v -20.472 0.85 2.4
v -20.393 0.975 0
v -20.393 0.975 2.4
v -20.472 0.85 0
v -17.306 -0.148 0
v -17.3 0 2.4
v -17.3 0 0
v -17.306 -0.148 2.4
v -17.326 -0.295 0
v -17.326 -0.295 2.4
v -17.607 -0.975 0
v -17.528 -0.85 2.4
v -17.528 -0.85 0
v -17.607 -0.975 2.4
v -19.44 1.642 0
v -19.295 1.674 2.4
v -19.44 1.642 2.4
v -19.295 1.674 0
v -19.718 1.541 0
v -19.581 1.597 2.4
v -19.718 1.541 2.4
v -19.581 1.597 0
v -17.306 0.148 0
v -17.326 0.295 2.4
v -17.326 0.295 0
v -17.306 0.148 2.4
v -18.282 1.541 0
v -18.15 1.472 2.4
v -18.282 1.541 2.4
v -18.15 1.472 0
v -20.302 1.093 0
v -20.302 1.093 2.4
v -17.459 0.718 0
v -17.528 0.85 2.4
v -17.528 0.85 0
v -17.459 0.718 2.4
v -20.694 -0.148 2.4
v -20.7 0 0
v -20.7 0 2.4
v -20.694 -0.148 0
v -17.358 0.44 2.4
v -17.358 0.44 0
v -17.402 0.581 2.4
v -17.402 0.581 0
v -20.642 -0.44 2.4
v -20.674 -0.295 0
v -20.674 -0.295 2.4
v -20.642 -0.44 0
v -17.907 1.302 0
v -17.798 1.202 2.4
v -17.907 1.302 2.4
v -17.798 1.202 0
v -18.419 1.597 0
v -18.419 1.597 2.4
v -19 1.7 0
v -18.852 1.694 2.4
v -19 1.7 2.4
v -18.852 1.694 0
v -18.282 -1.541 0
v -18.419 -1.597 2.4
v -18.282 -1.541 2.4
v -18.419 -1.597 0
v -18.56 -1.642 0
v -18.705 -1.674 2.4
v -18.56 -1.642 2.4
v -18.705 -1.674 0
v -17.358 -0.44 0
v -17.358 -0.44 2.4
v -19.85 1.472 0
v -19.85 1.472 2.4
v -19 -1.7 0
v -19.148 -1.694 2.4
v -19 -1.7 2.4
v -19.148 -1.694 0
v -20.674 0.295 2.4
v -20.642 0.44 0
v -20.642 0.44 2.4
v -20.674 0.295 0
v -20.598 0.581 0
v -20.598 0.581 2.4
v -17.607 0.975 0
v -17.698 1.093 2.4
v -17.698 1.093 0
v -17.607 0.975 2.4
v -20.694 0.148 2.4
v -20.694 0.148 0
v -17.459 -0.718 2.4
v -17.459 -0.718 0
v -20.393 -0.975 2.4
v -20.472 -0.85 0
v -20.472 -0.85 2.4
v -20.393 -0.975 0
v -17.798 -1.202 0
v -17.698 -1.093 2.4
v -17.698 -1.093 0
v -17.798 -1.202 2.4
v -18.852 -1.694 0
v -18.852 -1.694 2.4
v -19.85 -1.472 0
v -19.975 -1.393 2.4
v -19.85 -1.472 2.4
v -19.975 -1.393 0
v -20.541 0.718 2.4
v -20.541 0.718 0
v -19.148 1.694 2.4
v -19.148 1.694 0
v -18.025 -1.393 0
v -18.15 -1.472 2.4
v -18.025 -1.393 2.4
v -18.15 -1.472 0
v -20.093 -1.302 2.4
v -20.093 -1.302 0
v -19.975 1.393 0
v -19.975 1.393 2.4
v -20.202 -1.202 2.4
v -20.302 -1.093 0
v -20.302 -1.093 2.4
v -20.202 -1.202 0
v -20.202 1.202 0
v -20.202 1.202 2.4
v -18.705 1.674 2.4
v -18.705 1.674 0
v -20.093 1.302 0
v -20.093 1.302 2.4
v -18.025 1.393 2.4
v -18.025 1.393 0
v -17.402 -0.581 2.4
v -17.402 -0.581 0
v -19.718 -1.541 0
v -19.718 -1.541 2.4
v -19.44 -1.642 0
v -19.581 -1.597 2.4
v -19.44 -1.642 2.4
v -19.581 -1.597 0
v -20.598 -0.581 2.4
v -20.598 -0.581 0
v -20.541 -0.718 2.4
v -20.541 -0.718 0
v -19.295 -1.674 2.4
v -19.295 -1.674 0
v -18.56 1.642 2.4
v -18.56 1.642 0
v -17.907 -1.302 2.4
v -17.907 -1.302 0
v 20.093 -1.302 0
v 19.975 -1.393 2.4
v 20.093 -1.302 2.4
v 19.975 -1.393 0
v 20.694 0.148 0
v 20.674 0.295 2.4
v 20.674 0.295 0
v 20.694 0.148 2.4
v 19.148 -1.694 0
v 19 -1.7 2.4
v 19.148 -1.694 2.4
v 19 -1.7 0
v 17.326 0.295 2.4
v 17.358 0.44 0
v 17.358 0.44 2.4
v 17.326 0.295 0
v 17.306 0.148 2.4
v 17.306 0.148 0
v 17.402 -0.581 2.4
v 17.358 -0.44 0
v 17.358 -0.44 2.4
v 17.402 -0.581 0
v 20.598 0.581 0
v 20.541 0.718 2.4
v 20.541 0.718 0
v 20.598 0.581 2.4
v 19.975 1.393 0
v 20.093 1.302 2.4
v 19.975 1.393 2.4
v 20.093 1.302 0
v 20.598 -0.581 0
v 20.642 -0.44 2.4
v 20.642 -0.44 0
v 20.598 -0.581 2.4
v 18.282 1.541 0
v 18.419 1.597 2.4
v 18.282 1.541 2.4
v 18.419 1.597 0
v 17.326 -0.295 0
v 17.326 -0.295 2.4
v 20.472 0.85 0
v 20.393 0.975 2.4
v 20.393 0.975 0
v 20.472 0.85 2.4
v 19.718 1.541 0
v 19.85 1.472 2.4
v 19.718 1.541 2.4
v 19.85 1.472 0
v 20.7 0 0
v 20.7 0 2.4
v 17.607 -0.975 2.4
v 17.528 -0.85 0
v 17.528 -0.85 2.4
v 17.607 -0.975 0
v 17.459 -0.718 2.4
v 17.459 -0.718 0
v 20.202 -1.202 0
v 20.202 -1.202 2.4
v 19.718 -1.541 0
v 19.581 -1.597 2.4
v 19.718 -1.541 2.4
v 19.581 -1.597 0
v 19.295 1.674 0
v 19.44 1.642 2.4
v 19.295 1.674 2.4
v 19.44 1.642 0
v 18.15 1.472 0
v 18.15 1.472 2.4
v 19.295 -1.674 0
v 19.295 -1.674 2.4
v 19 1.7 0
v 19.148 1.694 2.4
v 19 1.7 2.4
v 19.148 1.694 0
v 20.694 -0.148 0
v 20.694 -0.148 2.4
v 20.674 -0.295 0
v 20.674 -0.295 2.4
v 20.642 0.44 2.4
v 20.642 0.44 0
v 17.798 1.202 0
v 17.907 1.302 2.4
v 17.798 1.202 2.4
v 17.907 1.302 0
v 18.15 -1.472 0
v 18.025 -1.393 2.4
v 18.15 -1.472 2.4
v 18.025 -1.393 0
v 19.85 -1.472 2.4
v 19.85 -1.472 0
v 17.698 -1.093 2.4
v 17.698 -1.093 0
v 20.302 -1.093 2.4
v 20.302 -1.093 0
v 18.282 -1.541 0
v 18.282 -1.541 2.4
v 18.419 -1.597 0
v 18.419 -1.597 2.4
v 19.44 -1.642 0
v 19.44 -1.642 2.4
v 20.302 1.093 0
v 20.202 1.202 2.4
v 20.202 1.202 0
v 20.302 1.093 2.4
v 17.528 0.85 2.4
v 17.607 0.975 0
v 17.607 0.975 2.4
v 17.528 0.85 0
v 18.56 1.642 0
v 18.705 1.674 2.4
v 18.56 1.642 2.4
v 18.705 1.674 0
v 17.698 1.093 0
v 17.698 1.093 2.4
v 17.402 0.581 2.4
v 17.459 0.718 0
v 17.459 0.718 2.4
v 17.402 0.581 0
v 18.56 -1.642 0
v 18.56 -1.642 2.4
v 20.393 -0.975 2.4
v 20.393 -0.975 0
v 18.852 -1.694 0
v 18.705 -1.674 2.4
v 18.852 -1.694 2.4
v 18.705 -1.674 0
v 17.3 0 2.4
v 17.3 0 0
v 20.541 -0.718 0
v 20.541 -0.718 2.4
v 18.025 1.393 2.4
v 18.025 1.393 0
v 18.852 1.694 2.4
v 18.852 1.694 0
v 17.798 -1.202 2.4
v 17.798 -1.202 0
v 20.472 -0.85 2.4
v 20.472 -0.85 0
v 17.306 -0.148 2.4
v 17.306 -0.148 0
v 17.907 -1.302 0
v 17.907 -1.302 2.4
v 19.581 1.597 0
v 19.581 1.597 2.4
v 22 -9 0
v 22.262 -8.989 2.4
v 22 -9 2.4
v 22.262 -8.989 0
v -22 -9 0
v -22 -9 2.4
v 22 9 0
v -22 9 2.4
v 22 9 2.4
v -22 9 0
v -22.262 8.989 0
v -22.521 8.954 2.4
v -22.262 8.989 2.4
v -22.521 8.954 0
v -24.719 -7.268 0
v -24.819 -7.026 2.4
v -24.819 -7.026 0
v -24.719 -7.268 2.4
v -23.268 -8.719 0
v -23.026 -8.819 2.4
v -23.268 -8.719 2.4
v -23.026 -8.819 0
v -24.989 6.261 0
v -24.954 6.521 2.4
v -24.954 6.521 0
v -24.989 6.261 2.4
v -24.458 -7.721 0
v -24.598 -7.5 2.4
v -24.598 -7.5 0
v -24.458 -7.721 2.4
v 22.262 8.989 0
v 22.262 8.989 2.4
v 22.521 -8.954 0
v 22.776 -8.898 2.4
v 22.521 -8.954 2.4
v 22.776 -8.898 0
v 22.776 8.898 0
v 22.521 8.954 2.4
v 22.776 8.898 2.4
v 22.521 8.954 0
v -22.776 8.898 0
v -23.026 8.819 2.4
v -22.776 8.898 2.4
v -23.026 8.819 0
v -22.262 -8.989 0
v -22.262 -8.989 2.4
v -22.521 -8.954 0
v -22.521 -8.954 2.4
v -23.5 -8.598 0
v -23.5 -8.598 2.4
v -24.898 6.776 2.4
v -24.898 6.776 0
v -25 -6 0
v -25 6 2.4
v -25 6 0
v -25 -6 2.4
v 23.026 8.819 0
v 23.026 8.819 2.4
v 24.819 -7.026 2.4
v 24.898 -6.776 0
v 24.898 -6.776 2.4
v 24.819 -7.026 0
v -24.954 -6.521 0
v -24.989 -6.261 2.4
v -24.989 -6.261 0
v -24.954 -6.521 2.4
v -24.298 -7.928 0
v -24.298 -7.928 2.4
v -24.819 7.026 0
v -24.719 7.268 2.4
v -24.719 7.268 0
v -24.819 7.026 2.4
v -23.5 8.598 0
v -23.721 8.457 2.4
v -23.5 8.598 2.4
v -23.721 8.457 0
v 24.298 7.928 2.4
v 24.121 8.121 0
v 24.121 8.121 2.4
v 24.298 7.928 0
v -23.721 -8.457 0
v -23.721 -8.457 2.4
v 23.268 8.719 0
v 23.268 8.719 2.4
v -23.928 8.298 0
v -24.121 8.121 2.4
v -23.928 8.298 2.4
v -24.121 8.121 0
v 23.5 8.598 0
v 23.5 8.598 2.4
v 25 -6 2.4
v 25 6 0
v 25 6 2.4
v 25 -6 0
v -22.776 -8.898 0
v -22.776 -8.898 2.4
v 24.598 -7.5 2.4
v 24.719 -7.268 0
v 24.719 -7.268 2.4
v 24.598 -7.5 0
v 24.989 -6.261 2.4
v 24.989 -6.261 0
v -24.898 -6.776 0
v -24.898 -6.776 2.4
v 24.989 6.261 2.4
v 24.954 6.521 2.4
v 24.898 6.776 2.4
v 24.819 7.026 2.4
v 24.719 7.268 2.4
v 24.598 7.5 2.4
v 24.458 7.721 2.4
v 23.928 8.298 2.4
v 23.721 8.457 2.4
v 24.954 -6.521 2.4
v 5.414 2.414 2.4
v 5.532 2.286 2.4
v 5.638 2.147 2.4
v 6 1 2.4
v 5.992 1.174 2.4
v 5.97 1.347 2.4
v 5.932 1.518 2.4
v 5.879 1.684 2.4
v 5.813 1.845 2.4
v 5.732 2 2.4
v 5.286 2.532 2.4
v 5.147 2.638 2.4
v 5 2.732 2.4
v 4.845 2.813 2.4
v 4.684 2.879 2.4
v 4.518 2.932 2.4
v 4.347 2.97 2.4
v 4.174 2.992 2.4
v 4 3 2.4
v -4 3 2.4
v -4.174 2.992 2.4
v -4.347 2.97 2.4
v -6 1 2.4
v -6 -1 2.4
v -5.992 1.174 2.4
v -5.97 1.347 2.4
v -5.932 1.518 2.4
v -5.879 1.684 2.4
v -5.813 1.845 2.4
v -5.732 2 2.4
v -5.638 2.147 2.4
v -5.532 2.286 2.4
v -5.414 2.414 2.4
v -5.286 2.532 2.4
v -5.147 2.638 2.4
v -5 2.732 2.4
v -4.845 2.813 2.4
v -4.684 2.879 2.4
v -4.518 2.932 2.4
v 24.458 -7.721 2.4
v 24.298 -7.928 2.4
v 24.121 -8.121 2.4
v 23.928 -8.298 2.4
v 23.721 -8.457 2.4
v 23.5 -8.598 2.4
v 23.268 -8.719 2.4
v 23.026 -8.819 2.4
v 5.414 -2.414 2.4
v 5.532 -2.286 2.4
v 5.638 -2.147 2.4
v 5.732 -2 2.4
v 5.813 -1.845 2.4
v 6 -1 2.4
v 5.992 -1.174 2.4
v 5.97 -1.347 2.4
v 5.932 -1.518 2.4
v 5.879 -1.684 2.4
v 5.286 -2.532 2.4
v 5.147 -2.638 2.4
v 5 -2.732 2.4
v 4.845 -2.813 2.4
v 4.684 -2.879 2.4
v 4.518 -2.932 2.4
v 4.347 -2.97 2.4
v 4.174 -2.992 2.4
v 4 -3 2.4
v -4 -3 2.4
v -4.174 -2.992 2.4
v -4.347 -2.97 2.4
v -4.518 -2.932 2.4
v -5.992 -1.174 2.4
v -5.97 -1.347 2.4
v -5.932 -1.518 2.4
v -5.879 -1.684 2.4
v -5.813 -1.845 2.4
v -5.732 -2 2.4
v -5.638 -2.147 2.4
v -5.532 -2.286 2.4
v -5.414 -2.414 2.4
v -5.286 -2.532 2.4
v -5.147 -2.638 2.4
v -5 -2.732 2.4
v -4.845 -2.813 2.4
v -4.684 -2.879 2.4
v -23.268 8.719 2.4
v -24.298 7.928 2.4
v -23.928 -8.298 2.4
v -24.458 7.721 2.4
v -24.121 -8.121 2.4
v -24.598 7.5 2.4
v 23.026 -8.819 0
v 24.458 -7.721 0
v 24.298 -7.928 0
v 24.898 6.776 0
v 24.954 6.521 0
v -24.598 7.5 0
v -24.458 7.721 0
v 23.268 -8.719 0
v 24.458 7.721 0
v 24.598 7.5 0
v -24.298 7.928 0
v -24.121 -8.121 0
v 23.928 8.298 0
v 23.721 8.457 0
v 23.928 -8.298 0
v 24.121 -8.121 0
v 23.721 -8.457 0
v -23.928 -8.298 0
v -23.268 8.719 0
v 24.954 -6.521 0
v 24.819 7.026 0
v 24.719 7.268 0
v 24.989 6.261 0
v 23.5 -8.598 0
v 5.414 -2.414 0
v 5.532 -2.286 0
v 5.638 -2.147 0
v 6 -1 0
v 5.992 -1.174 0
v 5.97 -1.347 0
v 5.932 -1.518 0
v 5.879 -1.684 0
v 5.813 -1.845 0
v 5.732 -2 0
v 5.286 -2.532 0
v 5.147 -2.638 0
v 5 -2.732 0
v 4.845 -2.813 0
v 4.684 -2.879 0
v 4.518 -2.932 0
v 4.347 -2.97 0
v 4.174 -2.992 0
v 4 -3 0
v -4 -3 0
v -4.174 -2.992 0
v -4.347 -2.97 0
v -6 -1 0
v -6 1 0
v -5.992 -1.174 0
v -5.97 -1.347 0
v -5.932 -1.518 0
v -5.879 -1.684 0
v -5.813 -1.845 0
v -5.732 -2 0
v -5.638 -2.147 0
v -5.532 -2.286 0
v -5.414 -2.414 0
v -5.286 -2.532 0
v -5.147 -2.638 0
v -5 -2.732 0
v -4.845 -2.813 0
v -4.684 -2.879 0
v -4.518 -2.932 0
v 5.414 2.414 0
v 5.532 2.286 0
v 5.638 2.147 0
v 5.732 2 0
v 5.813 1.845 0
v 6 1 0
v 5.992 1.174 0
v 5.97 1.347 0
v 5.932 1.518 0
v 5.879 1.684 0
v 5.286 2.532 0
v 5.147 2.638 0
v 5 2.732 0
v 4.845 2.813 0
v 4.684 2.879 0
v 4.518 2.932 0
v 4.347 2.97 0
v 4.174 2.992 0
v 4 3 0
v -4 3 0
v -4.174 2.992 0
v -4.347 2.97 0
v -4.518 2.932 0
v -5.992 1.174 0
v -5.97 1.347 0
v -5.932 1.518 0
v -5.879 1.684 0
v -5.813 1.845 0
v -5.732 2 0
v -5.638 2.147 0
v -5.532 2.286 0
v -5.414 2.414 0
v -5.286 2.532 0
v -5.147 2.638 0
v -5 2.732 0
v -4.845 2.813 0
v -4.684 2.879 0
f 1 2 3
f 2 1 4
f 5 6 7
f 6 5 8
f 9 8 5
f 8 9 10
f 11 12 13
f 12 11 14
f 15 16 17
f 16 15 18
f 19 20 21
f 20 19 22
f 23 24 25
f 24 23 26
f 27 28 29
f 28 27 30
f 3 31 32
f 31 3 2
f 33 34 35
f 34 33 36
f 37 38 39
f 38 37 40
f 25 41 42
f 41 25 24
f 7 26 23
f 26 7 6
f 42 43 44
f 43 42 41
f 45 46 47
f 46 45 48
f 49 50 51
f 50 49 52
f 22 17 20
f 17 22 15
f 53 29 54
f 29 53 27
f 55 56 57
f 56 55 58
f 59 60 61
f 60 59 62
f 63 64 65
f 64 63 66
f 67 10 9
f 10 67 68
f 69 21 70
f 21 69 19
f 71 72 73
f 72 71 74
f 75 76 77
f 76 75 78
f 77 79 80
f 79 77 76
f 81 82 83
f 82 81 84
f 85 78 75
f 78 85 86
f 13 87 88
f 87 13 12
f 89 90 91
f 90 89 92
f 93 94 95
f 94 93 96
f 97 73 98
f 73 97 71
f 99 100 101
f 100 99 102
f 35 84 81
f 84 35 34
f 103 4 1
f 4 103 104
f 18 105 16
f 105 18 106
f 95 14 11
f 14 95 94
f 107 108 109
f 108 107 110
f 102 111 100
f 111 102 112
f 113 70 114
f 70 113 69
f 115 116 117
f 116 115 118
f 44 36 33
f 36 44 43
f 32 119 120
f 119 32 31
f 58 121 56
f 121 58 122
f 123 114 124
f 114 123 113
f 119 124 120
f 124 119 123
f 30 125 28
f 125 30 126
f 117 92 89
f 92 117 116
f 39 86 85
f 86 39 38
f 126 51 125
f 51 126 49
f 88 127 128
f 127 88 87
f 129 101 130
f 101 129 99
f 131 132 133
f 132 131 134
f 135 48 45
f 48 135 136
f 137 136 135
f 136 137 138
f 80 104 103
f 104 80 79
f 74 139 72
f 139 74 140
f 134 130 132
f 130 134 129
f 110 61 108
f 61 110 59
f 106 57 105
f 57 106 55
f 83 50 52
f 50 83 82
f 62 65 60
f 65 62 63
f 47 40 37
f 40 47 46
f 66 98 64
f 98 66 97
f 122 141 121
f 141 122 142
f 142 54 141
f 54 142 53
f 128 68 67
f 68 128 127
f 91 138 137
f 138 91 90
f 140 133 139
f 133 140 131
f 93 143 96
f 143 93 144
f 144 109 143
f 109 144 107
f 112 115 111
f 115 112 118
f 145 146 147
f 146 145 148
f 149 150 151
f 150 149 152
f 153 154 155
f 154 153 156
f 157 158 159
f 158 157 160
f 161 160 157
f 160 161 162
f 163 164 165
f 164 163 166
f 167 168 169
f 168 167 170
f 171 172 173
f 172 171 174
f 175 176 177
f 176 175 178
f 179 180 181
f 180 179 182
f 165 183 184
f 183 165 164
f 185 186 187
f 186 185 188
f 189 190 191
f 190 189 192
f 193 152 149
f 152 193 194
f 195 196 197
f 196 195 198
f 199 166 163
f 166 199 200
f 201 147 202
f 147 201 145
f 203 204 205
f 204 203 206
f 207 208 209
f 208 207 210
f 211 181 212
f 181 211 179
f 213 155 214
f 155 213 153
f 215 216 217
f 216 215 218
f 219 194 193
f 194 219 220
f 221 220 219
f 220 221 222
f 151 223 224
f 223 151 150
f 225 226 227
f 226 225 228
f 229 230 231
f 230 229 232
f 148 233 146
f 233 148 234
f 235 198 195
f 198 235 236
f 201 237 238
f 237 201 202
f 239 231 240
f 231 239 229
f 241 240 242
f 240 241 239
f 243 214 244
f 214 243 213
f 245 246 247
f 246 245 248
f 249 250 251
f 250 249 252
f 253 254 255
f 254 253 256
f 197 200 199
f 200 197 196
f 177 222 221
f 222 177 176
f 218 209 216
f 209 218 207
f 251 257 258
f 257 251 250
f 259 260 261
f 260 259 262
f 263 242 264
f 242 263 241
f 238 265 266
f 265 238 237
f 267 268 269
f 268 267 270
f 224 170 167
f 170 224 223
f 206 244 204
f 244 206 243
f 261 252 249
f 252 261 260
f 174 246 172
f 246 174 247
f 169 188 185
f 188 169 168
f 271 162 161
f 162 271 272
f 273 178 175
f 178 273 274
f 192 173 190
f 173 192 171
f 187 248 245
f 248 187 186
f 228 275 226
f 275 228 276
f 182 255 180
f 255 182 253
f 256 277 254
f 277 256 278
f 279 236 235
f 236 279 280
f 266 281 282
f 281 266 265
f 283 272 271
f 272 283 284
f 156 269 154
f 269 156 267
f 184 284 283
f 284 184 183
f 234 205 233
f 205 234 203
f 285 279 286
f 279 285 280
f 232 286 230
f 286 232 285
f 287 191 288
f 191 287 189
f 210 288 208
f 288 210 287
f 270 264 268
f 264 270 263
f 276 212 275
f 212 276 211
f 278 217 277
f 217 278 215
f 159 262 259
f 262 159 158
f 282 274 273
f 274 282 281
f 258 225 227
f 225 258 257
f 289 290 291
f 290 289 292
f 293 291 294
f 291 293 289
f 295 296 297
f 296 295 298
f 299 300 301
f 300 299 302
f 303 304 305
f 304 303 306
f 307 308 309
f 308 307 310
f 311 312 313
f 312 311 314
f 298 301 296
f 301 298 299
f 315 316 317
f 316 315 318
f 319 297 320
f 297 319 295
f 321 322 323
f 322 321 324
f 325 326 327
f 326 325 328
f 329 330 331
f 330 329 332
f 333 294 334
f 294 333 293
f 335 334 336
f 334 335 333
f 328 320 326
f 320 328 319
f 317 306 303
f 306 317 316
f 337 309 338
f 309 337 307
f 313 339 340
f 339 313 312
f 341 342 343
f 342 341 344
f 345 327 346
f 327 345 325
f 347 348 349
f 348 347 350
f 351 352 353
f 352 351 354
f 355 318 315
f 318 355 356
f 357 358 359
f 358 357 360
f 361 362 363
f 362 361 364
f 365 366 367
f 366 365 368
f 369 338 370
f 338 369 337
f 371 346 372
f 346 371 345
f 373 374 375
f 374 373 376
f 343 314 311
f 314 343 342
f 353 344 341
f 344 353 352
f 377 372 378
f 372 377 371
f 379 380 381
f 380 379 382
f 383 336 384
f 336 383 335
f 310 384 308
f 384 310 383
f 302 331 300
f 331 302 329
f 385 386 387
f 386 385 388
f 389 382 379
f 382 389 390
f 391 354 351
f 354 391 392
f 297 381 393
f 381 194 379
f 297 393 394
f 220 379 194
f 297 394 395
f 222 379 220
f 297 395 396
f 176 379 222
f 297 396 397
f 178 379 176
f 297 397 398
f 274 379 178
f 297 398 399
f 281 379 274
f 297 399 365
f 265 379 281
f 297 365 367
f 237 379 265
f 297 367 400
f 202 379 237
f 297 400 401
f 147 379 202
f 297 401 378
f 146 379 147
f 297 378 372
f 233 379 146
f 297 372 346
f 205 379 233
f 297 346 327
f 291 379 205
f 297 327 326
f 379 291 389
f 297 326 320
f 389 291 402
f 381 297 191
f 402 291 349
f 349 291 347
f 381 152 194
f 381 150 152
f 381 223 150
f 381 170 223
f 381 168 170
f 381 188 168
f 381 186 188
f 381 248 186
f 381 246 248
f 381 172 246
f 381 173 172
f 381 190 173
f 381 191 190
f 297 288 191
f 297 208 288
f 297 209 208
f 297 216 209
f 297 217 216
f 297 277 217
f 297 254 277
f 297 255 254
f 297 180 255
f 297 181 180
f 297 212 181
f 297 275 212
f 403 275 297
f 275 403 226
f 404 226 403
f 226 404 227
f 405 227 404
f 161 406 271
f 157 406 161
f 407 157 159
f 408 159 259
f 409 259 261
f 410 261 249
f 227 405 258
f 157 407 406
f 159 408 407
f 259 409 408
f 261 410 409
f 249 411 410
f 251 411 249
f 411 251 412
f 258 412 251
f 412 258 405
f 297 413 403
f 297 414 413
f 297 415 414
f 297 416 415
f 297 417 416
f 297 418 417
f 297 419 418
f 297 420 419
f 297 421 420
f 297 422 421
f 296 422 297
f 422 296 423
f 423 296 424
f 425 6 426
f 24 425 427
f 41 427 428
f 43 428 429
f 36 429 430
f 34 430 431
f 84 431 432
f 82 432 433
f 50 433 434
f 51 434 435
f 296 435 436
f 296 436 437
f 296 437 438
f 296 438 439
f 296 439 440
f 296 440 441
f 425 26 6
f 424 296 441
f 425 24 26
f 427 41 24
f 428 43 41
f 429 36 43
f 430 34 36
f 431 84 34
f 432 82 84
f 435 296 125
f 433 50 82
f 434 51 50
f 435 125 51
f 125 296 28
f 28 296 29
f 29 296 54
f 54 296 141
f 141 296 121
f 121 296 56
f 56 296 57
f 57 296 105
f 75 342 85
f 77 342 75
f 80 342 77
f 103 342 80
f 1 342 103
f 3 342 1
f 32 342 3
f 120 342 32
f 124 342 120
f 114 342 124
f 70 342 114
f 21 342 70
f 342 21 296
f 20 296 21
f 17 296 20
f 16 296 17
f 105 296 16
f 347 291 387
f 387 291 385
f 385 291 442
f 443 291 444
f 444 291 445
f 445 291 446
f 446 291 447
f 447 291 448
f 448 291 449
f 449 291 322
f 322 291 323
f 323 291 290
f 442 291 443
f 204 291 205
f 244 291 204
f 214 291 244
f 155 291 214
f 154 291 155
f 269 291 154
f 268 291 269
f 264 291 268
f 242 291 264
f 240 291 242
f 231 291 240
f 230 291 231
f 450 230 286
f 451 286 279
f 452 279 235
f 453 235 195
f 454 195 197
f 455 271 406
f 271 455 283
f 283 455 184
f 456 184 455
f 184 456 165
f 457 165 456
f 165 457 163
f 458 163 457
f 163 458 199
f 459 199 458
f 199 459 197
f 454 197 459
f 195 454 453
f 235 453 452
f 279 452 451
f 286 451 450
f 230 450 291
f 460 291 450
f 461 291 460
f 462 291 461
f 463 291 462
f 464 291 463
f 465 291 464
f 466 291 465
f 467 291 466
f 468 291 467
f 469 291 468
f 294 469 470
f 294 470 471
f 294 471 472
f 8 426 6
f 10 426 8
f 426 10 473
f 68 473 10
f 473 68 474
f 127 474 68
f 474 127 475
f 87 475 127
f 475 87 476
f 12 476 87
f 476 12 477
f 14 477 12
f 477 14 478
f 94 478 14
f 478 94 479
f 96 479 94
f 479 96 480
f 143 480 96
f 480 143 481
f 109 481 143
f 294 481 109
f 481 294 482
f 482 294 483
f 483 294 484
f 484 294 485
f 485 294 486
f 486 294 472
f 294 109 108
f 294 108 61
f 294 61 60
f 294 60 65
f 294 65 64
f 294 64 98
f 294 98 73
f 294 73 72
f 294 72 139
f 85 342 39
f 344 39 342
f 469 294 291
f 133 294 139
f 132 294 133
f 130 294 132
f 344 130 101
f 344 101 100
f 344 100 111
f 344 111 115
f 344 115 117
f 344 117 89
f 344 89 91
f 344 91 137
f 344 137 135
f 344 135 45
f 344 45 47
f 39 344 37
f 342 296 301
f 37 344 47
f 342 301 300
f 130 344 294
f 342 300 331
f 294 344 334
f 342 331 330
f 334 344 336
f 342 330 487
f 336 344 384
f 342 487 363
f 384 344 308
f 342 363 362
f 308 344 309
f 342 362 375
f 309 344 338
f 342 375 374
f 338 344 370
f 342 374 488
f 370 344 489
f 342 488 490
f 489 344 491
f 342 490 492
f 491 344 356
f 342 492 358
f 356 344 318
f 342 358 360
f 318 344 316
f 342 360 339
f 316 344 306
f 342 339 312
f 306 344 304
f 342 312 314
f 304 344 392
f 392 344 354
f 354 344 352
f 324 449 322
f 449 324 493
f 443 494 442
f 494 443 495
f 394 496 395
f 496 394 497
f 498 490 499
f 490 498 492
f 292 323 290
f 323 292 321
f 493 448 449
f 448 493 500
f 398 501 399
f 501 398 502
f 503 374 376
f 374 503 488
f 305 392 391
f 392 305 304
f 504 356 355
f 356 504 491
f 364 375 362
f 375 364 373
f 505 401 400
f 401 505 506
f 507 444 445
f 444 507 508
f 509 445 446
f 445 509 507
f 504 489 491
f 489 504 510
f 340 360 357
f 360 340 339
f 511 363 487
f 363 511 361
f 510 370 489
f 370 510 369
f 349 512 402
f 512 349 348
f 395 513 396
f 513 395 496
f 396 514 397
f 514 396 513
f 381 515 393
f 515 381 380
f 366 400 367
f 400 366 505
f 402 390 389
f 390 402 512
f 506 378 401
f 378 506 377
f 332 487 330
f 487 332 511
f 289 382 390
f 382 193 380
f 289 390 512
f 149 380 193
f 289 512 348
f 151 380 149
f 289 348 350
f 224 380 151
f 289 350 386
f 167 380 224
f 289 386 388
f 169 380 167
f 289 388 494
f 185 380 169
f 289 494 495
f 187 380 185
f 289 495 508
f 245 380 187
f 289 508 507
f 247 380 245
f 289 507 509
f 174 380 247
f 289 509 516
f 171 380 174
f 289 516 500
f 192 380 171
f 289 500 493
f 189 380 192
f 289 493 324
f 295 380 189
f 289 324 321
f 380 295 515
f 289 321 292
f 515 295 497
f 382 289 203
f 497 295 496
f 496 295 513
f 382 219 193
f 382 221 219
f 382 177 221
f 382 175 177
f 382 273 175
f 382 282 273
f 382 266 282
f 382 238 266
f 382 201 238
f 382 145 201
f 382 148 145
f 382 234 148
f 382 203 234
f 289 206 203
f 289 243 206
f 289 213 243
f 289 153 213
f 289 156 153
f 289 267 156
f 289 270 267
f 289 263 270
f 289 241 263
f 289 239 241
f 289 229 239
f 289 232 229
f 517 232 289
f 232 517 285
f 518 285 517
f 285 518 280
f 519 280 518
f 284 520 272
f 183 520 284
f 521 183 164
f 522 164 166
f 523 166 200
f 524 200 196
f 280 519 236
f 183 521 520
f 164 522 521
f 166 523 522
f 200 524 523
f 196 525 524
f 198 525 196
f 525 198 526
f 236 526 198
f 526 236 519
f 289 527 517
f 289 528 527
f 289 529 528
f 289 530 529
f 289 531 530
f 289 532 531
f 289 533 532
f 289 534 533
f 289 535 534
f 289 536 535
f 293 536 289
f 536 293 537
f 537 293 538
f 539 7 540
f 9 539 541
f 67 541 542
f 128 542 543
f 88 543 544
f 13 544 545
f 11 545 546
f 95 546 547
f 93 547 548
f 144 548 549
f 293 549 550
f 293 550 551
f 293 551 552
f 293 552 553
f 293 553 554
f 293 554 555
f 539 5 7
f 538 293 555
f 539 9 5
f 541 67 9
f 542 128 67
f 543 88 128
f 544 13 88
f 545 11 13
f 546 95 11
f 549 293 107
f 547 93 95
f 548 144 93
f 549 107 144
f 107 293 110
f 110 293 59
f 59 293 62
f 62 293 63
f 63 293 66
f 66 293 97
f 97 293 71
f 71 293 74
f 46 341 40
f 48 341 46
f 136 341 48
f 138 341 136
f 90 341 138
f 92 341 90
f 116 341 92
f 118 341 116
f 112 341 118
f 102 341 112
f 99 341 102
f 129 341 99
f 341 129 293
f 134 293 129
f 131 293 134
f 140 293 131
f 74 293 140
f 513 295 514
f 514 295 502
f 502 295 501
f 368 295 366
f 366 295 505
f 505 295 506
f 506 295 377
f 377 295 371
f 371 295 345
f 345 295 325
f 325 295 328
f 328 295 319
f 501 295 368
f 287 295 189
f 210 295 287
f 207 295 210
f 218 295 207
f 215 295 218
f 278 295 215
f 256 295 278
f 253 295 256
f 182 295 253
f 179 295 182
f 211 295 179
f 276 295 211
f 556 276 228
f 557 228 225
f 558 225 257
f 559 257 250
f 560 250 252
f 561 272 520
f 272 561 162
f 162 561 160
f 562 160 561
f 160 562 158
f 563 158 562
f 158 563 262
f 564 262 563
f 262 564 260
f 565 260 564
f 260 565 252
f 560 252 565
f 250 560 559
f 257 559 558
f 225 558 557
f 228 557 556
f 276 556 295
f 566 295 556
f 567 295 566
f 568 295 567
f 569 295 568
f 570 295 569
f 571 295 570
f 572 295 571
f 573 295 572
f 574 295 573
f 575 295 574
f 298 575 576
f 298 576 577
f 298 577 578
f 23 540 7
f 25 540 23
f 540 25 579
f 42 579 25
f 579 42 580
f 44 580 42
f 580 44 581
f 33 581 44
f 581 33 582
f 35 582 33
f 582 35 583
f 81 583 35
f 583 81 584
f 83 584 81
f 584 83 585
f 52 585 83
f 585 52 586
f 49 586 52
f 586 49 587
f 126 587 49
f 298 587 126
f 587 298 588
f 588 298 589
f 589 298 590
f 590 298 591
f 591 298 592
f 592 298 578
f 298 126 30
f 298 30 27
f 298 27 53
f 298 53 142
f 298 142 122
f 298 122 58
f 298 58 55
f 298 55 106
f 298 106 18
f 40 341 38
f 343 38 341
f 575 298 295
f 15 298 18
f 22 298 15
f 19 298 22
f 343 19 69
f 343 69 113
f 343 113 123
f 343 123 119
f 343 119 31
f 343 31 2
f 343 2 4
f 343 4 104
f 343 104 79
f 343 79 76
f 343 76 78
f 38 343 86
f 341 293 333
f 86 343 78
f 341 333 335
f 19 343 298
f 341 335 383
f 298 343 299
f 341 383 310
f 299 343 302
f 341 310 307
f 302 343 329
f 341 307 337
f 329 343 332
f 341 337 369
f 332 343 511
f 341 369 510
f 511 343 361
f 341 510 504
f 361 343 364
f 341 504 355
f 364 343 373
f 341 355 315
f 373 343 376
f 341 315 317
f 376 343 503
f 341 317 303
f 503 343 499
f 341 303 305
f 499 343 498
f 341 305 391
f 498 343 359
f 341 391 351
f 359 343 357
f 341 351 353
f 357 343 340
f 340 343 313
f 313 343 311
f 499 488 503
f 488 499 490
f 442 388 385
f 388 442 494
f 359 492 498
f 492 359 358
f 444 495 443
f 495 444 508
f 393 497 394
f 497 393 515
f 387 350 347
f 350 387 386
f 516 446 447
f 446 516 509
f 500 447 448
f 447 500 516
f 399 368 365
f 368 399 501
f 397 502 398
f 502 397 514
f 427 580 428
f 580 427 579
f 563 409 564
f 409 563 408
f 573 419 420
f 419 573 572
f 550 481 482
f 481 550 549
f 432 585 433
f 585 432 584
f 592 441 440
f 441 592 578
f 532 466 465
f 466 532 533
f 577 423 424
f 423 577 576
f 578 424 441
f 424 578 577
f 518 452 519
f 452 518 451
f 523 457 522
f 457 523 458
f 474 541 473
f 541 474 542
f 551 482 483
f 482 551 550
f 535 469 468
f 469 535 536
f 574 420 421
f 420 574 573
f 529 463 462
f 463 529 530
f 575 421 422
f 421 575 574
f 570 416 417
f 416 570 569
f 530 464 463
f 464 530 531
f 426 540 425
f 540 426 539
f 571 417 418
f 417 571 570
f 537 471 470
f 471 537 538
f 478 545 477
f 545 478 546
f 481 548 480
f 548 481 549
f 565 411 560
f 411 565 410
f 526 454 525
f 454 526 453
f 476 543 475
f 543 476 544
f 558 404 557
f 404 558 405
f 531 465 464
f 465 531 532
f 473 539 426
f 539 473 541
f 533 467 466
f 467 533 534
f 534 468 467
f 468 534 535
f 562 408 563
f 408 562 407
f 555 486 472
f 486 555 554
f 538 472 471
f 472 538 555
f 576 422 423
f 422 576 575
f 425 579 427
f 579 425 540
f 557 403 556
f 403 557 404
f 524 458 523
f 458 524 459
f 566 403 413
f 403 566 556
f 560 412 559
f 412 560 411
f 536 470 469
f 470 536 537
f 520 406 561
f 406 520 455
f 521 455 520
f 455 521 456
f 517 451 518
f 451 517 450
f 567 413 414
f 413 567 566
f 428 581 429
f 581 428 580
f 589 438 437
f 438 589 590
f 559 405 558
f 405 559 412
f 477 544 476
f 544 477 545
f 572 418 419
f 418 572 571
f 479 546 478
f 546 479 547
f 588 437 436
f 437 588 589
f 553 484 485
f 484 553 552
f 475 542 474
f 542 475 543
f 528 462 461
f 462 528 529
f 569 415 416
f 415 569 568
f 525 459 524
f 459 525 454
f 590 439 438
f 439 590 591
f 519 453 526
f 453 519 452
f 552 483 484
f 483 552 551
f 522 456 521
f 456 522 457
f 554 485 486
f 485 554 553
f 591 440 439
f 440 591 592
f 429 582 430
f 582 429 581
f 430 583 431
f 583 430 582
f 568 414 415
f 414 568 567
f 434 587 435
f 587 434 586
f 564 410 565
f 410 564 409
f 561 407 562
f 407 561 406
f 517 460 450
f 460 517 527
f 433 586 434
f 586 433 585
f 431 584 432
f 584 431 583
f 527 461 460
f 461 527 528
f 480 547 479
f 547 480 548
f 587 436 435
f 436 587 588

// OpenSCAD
// file: woli_config.scad
// ============================================================
// WOLI V1.1 AUDITED FINAL — MASTER PARAMETERS
// Units: mm
// ============================================================

$fn = 72;

// ---------- GLOBAL ----------
fit_clearance = 0.40;
wall = 3.0;
floor_t = 5.0;
cover_t = 2.8;
shell_r = 10.0;

m3_clear = 3.4;
m3_pilot_d = 2.8;
m3_pilot_depth = 4.2;

tie_slot_w = 3.8;
tie_slot_l = 18;

// ---------- BODY ----------
body_w = 170;
body_l = 90;
chassis_h = 31;
top_h = 34;

top_upper_w = 162;
top_upper_l = 80;
top_upper_r = 9;

// ---------- N20 DRIVE ----------
wheel_d = 43;
wheel_w = 17.5;

n20_x = 12;
n20_y = 33;
n20_z = 10;

n20_bracket_x = 25;
n20_bracket_y = 8.5;
n20_bracket_z = 11.5;
n20_bracket_hole_cc = 17;      // approx; slots absorb error

wheel_axis_ground_z = wheel_d/2; // reference only; actual chassis ground plane requires hardware check
wheel_opening_l = 25;            // side wheel cutout depth (Y), mm
motor_y = -body_l/2 + body_l/3;  // wheel center: 1/3 body depth in from front (-Y)
motor_slot_len = 8;
motor_bracket_zone_x = body_w/2 - 18;

// ---------- BALL CASTER ----------
caster_w = 22;
caster_l = 17;
caster_h = 15;
caster_ball_d_visual_ref = 11.5; // photo-only reference; not used for fit
caster_dock_y = body_l/2 - 21;

caster_body_clear = 0.7;
caster_retainer_t = 3.0;
caster_retainer_screw_cc = 27;

caster_mount_x = 15;
caster_mount_y = 12;
caster_floor_open = 18.5;

// ---------- MAIN PCB ----------
pcb_w = 50;
pcb_l = 70;
pcb_stack_h = 15;

pcb_tray_w = 56;
pcb_tray_l = 76;
pcb_mount_cc_x = 44;
pcb_mount_cc_y = 64;

// ---------- MG90S ----------
servo_a = 32.4;
servo_b = 32.5;
servo_c = 12;
servo_fit = 0.7;

// ---------- LIMIT SWITCH ----------
limit_w = 21;
limit_l = 23;
limit_h = 6;

// ---------- VL53L0X ----------
tof_w = 10.7;
tof_l = 25;
tof_h = 11.5;
tof_rail_clear = 0.7;

tof_bezel_w = 34;
tof_bezel_h = 19;

// ---------- PHONE HOLDER / NECK ----------
phone_ball_d = 18.0;            // physical socket fit still required
neck_h = 30;
neck_base_w = 54;
neck_base_l = 42;
neck_base_h = 5;
neck_hole_x = 38;
neck_hole_y = 26;

neck_recess_w = 62;
neck_recess_l = 50;
neck_recess_d = 1.2;

neck_pilot_d = 2.8;
neck_pilot_depth = 7.0;

// reference phone clearance envelope only
phone_ref_w = 165;
phone_ref_h = 82;
phone_ref_t = 12;

// ---------- KLIFE PD-Q2 BATTERY ----------
battery_w = 68;
battery_l = 143;
battery_h = 11;
battery_mass_g = 205;

battery_fit_clear = 0.8;
battery_tray_w = 84;
battery_tray_l = 146;
battery_tray_t = 2.4;
battery_rail_t = 2.5;
battery_rail_h = 5.5;
battery_center_y = -18;

battery_tray_mount_x = 39;
battery_tray_mount_y = 55;

// ---------- UPPER ELECTRONICS DECK ----------
bridge_w = 122;
bridge_l = 94;
bridge_t = 3.0;
bridge_leg_h = 20;
bridge_leg_x = 56;
bridge_leg_y = 36;

module_boss_h = 4.5;
module_boss_d = 8.0;
module_pilot_d = 2.8;

pcb_deck_cx = -25;
pcb_deck_cy = 0;

tb_deck_cx = 34;
tb_deck_cy = 17;

usbc_deck_cx = 36;
usbc_deck_cy = -24;

// ---------- TB6612FNG HW-166 ----------
tb6612_w = 26;
tb6612_l = 26;
tb6612_clear = 0.6;

// total installed height is intentionally not hard-coded

// ---------- USB-C BREAKOUT ----------
usbc_board_w = 12;
usbc_board_l = 15;
usbc_connector_h = 4.2;
usbc_clear = 0.6;

// ---------- TOP COVER INTERFACE ----------
cover_skirt_depth = 4.0;
cover_skirt_clear = 0.8;
cover_skirt_t = 2.5;

cover_side_screw_y = 55 * body_l / 190;
cover_side_screw_z = -2.5;

rear_service_w = 42;
rear_service_h = 14;
rear_hatch_screw_x = 19;
rear_hatch_center_z = 10;

// ---------- CABLE MANAGEMENT ----------
cable_bridge_w = 24;
cable_bridge_l = 14;
cable_bridge_h = 8;
cable_bridge_channel = 8;

// ---------- SERVO LOCK FRAMEWORK ----------
lock_angle_deg = 90;
unlock_angle_deg = 10;

lock_plate_d = 28;
lock_arm_w = 10;
lock_arm_t = 4.0;
lock_reach = 22;
lock_tip_d = 10;

horn_center_clear_d = 7.0;
horn_slot_d = 2.4;              // physical stock-horn check required
horn_slot_len = 8.0;
horn_slot_radius = 8.0;

lock_pad_t = 2.0;
lock_pad_d = 11.0;
// file: woli_lib.scad
include <woli_config.scad>;

module rr2d(w,l,r){
    offset(r=r) square([w-2*r,l-2*r], center=true);
}

module rplate(w,l,h,r){
    linear_extrude(height=h) rr2d(w,l,r);
}

module rshell(w,l,h,r,t,bottom){
    difference(){
        rplate(w,l,h,r);
        translate([0,0,bottom])
            rplate(w-2*t,l-2*t,h,r-t);
    }
}

module slot2d(len,d){
    hull(){
        translate([-len/2,0]) circle(d=d);
        translate([ len/2,0]) circle(d=d);
    }
}

module slot3d(len,d,h){
    linear_extrude(height=h) slot2d(len,d);
}

module tie_slot(h=5){
    rplate(tie_slot_w,tie_slot_l,h,1.2);
}

module body_screw_pattern(h=20){
    for(x=[-screw_x,screw_x])
        for(y=[-screw_y,screw_y])
            translate([x,y,-1])
                cylinder(h=h,d=m3_clear);
}

module body_bosses(h=20){
    for(x=[-screw_x,screw_x])
        for(y=[-screw_y,screw_y])
            translate([x,y,0])
                cylinder(h=h,d=m3_boss_d);
}


// Closed-top shell for removable upper cover.
// Leaves the underside open and preserves a roof thickness.
module top_shell(w,l,h,r,t){
    difference(){
        rplate(w,l,h,r);
        translate([0,0,-0.1])
            rplate(w-2*t,l-2*t,h-t+0.1,r-t);
    }
}


// Tapered rounded solid built from two rounded plates.
// Useful for product-like enclosure shoulders.
module tapered_rounded_solid(w0,l0,w1,l1,h,r0,r1){
    hull(){
        rplate(w0,l0,0.8,r0);
        translate([0,0,h-0.8])
            rplate(w1,l1,0.8,r1);
    }
}

// Open-bottom tapered cover with closed roof.
module tapered_top_shell(w0,l0,w1,l1,h,r0,r1,t){
    difference(){
        tapered_rounded_solid(w0,l0,w1,l1,h,r0,r1);
        translate([0,0,-0.1])
            tapered_rounded_solid(
                w0-2*t,l0-2*t,
                w1-2*t,l1-2*t,
                h-t+0.1,
                max(r0-t,1),max(r1-t,1)
            );
    }
}
// main file
include <woli_lib.scad>;

// OPTIONAL TEST PART.
// USB-C cutout is deliberately generous because connector shell position
// on the breakout board still needs physical alignment verification.
hatch_w=50;
hatch_h=18;
hatch_t=2.4;

difference(){
    rplate(hatch_w,hatch_h,hatch_t,3);

    for(x=[-rear_hatch_screw_x,rear_hatch_screw_x])
        translate([x,0,-0.1])
            cylinder(h=hatch_t+0.3,d=m3_clear);

    translate([0,0,-0.1])
        rplate(12,6,hatch_t+0.3,2);
}
